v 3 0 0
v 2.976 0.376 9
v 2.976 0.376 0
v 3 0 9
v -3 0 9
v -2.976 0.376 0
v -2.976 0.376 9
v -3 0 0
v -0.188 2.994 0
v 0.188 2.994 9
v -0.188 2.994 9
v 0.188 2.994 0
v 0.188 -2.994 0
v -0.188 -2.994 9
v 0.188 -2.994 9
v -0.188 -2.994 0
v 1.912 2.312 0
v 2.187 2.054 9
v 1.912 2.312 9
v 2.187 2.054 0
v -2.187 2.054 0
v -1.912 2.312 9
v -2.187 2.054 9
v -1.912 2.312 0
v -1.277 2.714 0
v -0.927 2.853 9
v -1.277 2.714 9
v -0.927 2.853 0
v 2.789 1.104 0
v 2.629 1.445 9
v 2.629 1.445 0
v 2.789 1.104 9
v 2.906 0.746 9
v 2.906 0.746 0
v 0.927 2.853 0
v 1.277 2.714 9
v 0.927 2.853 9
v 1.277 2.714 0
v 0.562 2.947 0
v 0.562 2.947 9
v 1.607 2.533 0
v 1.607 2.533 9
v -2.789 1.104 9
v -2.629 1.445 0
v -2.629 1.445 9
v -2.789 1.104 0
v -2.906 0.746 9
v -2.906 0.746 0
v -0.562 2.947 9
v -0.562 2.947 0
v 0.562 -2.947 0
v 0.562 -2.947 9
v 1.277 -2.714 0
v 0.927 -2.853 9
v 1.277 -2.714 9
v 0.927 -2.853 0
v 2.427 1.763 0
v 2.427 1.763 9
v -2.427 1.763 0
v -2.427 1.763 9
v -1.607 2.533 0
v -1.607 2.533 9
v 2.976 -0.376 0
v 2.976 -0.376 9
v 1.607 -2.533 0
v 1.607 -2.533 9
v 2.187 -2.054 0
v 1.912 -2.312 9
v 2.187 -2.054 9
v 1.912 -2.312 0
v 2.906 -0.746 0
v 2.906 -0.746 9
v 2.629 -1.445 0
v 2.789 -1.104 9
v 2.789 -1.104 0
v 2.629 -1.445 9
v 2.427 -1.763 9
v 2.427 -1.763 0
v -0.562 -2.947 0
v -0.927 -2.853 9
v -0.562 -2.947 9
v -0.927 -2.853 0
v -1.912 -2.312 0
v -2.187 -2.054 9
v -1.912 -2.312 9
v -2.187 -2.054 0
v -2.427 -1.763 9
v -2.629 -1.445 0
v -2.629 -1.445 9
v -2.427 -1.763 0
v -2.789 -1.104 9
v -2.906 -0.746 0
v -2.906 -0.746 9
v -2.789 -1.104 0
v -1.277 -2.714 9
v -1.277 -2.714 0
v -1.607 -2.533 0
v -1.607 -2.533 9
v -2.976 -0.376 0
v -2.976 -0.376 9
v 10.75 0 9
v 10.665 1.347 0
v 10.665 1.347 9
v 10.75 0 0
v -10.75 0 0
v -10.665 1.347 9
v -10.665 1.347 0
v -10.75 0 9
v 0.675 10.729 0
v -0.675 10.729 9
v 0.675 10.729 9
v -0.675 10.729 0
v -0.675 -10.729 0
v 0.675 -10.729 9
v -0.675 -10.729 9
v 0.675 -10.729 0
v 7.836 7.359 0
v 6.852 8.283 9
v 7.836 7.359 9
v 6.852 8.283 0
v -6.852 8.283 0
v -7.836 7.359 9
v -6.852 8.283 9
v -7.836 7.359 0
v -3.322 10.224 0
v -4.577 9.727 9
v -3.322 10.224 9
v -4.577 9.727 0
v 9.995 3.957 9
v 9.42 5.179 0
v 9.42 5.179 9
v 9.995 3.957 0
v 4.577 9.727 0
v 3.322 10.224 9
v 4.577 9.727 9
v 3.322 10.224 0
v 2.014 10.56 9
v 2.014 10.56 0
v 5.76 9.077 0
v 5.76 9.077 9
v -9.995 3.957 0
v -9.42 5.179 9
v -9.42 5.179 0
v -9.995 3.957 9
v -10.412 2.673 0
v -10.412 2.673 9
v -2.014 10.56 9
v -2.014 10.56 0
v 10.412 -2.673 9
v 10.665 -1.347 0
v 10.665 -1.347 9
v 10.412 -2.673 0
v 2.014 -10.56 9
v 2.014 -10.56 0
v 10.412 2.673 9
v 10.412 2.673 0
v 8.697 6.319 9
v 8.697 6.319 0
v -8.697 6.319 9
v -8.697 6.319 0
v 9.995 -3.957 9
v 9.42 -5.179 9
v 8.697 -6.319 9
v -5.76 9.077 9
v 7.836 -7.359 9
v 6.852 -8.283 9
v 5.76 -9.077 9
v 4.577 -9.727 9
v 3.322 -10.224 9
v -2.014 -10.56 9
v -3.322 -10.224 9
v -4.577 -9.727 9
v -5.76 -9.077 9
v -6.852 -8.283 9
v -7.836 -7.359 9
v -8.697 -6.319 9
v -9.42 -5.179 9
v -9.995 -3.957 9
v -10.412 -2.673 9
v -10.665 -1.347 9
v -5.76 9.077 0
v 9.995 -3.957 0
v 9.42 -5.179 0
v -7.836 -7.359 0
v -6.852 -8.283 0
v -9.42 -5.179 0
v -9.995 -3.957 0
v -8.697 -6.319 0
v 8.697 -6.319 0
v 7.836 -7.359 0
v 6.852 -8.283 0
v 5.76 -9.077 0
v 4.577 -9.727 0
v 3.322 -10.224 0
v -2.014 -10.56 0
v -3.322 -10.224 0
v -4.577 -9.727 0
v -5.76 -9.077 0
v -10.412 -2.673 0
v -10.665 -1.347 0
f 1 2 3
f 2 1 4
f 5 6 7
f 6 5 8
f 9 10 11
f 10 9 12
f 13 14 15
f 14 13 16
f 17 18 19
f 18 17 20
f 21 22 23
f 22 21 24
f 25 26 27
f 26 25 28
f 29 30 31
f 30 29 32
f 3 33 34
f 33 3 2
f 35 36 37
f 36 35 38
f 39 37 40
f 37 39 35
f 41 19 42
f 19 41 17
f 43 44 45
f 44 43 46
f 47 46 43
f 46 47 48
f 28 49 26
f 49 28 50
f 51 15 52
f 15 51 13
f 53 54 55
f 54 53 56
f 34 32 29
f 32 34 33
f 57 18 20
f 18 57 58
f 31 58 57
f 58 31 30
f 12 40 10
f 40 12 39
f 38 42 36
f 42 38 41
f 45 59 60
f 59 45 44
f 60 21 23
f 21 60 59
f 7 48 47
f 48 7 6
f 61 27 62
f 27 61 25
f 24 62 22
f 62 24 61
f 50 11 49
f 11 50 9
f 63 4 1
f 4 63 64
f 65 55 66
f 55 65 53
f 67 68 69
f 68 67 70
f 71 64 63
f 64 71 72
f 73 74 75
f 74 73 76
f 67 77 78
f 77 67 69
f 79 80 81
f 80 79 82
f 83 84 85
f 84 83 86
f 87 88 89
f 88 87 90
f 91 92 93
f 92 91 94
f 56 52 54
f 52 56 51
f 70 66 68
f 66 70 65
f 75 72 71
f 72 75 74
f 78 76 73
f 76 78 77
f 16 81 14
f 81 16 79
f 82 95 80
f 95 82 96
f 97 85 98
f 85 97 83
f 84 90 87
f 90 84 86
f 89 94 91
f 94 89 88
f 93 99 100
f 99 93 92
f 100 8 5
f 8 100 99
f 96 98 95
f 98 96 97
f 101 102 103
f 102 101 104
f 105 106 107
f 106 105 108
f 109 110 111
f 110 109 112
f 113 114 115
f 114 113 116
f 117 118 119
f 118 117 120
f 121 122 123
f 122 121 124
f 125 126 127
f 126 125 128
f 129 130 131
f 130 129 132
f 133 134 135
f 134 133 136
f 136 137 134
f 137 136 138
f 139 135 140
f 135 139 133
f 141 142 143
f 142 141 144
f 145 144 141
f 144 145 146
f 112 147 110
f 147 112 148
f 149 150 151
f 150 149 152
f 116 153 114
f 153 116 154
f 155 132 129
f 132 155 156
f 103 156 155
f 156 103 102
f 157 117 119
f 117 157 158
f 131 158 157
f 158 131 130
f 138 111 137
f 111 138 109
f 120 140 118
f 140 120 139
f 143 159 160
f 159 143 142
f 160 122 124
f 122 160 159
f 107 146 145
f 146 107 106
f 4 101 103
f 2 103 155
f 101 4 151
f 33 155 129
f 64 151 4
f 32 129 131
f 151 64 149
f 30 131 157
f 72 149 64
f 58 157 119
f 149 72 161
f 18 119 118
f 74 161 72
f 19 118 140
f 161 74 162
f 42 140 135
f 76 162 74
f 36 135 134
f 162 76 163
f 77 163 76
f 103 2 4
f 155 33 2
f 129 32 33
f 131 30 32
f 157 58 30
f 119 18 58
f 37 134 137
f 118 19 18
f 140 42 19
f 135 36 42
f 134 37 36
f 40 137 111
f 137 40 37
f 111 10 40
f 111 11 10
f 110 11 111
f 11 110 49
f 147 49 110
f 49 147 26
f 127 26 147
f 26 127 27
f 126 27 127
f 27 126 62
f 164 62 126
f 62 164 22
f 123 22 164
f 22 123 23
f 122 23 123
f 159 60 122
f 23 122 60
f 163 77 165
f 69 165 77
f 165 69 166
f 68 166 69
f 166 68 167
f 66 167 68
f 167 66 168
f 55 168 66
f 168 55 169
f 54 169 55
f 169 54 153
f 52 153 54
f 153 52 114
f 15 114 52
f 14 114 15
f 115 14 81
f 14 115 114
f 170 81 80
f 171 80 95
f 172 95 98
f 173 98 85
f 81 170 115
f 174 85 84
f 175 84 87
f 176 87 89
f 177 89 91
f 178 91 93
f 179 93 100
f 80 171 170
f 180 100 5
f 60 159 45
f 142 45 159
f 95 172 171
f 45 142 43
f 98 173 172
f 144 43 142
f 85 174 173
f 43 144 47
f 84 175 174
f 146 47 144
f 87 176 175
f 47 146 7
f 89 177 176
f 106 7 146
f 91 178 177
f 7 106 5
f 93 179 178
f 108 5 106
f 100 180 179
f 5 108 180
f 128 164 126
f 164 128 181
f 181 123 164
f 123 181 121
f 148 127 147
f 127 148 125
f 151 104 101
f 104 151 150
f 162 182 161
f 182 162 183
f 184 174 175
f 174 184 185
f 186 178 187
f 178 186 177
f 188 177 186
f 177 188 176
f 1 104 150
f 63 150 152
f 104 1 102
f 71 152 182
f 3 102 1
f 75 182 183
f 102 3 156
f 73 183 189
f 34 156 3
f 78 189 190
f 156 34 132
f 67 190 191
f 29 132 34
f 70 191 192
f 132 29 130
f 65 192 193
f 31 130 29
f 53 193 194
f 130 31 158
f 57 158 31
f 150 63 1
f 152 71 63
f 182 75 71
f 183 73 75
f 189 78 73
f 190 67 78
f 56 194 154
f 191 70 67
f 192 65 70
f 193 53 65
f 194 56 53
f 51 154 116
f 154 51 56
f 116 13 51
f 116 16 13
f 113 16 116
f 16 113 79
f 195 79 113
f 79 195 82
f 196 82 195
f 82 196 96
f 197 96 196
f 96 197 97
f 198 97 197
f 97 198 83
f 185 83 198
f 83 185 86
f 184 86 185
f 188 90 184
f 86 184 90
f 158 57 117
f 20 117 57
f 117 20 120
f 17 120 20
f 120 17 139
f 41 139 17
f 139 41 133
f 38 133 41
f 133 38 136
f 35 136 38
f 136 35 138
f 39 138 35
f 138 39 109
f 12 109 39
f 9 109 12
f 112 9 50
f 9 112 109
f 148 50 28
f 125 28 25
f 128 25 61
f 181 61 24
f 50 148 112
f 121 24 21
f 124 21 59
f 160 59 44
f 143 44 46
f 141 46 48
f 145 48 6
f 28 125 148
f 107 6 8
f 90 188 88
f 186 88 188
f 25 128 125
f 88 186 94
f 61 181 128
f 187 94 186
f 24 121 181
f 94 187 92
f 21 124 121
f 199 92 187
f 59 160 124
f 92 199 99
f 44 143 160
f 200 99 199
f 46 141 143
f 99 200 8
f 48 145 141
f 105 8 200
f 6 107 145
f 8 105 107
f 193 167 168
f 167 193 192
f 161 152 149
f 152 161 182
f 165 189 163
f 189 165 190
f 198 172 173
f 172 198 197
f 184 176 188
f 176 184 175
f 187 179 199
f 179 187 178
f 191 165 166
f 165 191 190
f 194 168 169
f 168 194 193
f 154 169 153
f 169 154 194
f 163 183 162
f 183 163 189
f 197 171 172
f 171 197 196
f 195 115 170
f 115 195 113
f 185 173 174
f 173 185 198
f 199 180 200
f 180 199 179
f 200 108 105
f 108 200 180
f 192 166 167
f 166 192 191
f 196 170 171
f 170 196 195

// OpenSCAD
$fn = 50;


difference() {
	union() {
		*color(alpha = 1.0000000000, c = "gray") {
			translate(v = [0, 7, 0]) {
				linear_extrude(height = 1) {
					text(font = "Arial:style=Bold", halign = "center", size = 4.5000000000, text = "COMMENT circle main", valign = "center");
				}
			}
		}
		cylinder(h = 9, r = 10.7500000000);
	}
	union() {
		*color(alpha = 1.0000000000, c = "gray") {
			translate(v = [0, 7, 0]) {
				linear_extrude(height = 1) {
					text(font = "Arial:style=Bold", halign = "center", size = 4.5000000000, text = "COMMENT holes main", valign = "center");
				}
			}
		}
		translate(v = [0.0000000000, 0.0000000000, -50.0000000000]) {
			cylinder(h = 100, r = 3.0000000000);
		}
		translate(v = [0.0000000000, 0.0000000000, -50.0000000000]) {
			cylinder(h = 100, r = 3.0000000000);
		}
		translate(v = [0.0000000000, 0.0000000000, -50.0000000000]) {
			cylinder(h = 100, r = 3.0000000000);
		}
		translate(v = [0.0000000000, 0.0000000000, -50.0000000000]) {
			cylinder(h = 100, r = 1.5000000000);
		}
		translate(v = [0.0000000000, 0.0000000000, -50.0000000000]) {
			cylinder(h = 100, r = 1.5000000000);
		}
		translate(v = [0.0000000000, 0.0000000000, -50.0000000000]) {
			cylinder(h = 100, r = 1.5000000000);
		}
	}
}
